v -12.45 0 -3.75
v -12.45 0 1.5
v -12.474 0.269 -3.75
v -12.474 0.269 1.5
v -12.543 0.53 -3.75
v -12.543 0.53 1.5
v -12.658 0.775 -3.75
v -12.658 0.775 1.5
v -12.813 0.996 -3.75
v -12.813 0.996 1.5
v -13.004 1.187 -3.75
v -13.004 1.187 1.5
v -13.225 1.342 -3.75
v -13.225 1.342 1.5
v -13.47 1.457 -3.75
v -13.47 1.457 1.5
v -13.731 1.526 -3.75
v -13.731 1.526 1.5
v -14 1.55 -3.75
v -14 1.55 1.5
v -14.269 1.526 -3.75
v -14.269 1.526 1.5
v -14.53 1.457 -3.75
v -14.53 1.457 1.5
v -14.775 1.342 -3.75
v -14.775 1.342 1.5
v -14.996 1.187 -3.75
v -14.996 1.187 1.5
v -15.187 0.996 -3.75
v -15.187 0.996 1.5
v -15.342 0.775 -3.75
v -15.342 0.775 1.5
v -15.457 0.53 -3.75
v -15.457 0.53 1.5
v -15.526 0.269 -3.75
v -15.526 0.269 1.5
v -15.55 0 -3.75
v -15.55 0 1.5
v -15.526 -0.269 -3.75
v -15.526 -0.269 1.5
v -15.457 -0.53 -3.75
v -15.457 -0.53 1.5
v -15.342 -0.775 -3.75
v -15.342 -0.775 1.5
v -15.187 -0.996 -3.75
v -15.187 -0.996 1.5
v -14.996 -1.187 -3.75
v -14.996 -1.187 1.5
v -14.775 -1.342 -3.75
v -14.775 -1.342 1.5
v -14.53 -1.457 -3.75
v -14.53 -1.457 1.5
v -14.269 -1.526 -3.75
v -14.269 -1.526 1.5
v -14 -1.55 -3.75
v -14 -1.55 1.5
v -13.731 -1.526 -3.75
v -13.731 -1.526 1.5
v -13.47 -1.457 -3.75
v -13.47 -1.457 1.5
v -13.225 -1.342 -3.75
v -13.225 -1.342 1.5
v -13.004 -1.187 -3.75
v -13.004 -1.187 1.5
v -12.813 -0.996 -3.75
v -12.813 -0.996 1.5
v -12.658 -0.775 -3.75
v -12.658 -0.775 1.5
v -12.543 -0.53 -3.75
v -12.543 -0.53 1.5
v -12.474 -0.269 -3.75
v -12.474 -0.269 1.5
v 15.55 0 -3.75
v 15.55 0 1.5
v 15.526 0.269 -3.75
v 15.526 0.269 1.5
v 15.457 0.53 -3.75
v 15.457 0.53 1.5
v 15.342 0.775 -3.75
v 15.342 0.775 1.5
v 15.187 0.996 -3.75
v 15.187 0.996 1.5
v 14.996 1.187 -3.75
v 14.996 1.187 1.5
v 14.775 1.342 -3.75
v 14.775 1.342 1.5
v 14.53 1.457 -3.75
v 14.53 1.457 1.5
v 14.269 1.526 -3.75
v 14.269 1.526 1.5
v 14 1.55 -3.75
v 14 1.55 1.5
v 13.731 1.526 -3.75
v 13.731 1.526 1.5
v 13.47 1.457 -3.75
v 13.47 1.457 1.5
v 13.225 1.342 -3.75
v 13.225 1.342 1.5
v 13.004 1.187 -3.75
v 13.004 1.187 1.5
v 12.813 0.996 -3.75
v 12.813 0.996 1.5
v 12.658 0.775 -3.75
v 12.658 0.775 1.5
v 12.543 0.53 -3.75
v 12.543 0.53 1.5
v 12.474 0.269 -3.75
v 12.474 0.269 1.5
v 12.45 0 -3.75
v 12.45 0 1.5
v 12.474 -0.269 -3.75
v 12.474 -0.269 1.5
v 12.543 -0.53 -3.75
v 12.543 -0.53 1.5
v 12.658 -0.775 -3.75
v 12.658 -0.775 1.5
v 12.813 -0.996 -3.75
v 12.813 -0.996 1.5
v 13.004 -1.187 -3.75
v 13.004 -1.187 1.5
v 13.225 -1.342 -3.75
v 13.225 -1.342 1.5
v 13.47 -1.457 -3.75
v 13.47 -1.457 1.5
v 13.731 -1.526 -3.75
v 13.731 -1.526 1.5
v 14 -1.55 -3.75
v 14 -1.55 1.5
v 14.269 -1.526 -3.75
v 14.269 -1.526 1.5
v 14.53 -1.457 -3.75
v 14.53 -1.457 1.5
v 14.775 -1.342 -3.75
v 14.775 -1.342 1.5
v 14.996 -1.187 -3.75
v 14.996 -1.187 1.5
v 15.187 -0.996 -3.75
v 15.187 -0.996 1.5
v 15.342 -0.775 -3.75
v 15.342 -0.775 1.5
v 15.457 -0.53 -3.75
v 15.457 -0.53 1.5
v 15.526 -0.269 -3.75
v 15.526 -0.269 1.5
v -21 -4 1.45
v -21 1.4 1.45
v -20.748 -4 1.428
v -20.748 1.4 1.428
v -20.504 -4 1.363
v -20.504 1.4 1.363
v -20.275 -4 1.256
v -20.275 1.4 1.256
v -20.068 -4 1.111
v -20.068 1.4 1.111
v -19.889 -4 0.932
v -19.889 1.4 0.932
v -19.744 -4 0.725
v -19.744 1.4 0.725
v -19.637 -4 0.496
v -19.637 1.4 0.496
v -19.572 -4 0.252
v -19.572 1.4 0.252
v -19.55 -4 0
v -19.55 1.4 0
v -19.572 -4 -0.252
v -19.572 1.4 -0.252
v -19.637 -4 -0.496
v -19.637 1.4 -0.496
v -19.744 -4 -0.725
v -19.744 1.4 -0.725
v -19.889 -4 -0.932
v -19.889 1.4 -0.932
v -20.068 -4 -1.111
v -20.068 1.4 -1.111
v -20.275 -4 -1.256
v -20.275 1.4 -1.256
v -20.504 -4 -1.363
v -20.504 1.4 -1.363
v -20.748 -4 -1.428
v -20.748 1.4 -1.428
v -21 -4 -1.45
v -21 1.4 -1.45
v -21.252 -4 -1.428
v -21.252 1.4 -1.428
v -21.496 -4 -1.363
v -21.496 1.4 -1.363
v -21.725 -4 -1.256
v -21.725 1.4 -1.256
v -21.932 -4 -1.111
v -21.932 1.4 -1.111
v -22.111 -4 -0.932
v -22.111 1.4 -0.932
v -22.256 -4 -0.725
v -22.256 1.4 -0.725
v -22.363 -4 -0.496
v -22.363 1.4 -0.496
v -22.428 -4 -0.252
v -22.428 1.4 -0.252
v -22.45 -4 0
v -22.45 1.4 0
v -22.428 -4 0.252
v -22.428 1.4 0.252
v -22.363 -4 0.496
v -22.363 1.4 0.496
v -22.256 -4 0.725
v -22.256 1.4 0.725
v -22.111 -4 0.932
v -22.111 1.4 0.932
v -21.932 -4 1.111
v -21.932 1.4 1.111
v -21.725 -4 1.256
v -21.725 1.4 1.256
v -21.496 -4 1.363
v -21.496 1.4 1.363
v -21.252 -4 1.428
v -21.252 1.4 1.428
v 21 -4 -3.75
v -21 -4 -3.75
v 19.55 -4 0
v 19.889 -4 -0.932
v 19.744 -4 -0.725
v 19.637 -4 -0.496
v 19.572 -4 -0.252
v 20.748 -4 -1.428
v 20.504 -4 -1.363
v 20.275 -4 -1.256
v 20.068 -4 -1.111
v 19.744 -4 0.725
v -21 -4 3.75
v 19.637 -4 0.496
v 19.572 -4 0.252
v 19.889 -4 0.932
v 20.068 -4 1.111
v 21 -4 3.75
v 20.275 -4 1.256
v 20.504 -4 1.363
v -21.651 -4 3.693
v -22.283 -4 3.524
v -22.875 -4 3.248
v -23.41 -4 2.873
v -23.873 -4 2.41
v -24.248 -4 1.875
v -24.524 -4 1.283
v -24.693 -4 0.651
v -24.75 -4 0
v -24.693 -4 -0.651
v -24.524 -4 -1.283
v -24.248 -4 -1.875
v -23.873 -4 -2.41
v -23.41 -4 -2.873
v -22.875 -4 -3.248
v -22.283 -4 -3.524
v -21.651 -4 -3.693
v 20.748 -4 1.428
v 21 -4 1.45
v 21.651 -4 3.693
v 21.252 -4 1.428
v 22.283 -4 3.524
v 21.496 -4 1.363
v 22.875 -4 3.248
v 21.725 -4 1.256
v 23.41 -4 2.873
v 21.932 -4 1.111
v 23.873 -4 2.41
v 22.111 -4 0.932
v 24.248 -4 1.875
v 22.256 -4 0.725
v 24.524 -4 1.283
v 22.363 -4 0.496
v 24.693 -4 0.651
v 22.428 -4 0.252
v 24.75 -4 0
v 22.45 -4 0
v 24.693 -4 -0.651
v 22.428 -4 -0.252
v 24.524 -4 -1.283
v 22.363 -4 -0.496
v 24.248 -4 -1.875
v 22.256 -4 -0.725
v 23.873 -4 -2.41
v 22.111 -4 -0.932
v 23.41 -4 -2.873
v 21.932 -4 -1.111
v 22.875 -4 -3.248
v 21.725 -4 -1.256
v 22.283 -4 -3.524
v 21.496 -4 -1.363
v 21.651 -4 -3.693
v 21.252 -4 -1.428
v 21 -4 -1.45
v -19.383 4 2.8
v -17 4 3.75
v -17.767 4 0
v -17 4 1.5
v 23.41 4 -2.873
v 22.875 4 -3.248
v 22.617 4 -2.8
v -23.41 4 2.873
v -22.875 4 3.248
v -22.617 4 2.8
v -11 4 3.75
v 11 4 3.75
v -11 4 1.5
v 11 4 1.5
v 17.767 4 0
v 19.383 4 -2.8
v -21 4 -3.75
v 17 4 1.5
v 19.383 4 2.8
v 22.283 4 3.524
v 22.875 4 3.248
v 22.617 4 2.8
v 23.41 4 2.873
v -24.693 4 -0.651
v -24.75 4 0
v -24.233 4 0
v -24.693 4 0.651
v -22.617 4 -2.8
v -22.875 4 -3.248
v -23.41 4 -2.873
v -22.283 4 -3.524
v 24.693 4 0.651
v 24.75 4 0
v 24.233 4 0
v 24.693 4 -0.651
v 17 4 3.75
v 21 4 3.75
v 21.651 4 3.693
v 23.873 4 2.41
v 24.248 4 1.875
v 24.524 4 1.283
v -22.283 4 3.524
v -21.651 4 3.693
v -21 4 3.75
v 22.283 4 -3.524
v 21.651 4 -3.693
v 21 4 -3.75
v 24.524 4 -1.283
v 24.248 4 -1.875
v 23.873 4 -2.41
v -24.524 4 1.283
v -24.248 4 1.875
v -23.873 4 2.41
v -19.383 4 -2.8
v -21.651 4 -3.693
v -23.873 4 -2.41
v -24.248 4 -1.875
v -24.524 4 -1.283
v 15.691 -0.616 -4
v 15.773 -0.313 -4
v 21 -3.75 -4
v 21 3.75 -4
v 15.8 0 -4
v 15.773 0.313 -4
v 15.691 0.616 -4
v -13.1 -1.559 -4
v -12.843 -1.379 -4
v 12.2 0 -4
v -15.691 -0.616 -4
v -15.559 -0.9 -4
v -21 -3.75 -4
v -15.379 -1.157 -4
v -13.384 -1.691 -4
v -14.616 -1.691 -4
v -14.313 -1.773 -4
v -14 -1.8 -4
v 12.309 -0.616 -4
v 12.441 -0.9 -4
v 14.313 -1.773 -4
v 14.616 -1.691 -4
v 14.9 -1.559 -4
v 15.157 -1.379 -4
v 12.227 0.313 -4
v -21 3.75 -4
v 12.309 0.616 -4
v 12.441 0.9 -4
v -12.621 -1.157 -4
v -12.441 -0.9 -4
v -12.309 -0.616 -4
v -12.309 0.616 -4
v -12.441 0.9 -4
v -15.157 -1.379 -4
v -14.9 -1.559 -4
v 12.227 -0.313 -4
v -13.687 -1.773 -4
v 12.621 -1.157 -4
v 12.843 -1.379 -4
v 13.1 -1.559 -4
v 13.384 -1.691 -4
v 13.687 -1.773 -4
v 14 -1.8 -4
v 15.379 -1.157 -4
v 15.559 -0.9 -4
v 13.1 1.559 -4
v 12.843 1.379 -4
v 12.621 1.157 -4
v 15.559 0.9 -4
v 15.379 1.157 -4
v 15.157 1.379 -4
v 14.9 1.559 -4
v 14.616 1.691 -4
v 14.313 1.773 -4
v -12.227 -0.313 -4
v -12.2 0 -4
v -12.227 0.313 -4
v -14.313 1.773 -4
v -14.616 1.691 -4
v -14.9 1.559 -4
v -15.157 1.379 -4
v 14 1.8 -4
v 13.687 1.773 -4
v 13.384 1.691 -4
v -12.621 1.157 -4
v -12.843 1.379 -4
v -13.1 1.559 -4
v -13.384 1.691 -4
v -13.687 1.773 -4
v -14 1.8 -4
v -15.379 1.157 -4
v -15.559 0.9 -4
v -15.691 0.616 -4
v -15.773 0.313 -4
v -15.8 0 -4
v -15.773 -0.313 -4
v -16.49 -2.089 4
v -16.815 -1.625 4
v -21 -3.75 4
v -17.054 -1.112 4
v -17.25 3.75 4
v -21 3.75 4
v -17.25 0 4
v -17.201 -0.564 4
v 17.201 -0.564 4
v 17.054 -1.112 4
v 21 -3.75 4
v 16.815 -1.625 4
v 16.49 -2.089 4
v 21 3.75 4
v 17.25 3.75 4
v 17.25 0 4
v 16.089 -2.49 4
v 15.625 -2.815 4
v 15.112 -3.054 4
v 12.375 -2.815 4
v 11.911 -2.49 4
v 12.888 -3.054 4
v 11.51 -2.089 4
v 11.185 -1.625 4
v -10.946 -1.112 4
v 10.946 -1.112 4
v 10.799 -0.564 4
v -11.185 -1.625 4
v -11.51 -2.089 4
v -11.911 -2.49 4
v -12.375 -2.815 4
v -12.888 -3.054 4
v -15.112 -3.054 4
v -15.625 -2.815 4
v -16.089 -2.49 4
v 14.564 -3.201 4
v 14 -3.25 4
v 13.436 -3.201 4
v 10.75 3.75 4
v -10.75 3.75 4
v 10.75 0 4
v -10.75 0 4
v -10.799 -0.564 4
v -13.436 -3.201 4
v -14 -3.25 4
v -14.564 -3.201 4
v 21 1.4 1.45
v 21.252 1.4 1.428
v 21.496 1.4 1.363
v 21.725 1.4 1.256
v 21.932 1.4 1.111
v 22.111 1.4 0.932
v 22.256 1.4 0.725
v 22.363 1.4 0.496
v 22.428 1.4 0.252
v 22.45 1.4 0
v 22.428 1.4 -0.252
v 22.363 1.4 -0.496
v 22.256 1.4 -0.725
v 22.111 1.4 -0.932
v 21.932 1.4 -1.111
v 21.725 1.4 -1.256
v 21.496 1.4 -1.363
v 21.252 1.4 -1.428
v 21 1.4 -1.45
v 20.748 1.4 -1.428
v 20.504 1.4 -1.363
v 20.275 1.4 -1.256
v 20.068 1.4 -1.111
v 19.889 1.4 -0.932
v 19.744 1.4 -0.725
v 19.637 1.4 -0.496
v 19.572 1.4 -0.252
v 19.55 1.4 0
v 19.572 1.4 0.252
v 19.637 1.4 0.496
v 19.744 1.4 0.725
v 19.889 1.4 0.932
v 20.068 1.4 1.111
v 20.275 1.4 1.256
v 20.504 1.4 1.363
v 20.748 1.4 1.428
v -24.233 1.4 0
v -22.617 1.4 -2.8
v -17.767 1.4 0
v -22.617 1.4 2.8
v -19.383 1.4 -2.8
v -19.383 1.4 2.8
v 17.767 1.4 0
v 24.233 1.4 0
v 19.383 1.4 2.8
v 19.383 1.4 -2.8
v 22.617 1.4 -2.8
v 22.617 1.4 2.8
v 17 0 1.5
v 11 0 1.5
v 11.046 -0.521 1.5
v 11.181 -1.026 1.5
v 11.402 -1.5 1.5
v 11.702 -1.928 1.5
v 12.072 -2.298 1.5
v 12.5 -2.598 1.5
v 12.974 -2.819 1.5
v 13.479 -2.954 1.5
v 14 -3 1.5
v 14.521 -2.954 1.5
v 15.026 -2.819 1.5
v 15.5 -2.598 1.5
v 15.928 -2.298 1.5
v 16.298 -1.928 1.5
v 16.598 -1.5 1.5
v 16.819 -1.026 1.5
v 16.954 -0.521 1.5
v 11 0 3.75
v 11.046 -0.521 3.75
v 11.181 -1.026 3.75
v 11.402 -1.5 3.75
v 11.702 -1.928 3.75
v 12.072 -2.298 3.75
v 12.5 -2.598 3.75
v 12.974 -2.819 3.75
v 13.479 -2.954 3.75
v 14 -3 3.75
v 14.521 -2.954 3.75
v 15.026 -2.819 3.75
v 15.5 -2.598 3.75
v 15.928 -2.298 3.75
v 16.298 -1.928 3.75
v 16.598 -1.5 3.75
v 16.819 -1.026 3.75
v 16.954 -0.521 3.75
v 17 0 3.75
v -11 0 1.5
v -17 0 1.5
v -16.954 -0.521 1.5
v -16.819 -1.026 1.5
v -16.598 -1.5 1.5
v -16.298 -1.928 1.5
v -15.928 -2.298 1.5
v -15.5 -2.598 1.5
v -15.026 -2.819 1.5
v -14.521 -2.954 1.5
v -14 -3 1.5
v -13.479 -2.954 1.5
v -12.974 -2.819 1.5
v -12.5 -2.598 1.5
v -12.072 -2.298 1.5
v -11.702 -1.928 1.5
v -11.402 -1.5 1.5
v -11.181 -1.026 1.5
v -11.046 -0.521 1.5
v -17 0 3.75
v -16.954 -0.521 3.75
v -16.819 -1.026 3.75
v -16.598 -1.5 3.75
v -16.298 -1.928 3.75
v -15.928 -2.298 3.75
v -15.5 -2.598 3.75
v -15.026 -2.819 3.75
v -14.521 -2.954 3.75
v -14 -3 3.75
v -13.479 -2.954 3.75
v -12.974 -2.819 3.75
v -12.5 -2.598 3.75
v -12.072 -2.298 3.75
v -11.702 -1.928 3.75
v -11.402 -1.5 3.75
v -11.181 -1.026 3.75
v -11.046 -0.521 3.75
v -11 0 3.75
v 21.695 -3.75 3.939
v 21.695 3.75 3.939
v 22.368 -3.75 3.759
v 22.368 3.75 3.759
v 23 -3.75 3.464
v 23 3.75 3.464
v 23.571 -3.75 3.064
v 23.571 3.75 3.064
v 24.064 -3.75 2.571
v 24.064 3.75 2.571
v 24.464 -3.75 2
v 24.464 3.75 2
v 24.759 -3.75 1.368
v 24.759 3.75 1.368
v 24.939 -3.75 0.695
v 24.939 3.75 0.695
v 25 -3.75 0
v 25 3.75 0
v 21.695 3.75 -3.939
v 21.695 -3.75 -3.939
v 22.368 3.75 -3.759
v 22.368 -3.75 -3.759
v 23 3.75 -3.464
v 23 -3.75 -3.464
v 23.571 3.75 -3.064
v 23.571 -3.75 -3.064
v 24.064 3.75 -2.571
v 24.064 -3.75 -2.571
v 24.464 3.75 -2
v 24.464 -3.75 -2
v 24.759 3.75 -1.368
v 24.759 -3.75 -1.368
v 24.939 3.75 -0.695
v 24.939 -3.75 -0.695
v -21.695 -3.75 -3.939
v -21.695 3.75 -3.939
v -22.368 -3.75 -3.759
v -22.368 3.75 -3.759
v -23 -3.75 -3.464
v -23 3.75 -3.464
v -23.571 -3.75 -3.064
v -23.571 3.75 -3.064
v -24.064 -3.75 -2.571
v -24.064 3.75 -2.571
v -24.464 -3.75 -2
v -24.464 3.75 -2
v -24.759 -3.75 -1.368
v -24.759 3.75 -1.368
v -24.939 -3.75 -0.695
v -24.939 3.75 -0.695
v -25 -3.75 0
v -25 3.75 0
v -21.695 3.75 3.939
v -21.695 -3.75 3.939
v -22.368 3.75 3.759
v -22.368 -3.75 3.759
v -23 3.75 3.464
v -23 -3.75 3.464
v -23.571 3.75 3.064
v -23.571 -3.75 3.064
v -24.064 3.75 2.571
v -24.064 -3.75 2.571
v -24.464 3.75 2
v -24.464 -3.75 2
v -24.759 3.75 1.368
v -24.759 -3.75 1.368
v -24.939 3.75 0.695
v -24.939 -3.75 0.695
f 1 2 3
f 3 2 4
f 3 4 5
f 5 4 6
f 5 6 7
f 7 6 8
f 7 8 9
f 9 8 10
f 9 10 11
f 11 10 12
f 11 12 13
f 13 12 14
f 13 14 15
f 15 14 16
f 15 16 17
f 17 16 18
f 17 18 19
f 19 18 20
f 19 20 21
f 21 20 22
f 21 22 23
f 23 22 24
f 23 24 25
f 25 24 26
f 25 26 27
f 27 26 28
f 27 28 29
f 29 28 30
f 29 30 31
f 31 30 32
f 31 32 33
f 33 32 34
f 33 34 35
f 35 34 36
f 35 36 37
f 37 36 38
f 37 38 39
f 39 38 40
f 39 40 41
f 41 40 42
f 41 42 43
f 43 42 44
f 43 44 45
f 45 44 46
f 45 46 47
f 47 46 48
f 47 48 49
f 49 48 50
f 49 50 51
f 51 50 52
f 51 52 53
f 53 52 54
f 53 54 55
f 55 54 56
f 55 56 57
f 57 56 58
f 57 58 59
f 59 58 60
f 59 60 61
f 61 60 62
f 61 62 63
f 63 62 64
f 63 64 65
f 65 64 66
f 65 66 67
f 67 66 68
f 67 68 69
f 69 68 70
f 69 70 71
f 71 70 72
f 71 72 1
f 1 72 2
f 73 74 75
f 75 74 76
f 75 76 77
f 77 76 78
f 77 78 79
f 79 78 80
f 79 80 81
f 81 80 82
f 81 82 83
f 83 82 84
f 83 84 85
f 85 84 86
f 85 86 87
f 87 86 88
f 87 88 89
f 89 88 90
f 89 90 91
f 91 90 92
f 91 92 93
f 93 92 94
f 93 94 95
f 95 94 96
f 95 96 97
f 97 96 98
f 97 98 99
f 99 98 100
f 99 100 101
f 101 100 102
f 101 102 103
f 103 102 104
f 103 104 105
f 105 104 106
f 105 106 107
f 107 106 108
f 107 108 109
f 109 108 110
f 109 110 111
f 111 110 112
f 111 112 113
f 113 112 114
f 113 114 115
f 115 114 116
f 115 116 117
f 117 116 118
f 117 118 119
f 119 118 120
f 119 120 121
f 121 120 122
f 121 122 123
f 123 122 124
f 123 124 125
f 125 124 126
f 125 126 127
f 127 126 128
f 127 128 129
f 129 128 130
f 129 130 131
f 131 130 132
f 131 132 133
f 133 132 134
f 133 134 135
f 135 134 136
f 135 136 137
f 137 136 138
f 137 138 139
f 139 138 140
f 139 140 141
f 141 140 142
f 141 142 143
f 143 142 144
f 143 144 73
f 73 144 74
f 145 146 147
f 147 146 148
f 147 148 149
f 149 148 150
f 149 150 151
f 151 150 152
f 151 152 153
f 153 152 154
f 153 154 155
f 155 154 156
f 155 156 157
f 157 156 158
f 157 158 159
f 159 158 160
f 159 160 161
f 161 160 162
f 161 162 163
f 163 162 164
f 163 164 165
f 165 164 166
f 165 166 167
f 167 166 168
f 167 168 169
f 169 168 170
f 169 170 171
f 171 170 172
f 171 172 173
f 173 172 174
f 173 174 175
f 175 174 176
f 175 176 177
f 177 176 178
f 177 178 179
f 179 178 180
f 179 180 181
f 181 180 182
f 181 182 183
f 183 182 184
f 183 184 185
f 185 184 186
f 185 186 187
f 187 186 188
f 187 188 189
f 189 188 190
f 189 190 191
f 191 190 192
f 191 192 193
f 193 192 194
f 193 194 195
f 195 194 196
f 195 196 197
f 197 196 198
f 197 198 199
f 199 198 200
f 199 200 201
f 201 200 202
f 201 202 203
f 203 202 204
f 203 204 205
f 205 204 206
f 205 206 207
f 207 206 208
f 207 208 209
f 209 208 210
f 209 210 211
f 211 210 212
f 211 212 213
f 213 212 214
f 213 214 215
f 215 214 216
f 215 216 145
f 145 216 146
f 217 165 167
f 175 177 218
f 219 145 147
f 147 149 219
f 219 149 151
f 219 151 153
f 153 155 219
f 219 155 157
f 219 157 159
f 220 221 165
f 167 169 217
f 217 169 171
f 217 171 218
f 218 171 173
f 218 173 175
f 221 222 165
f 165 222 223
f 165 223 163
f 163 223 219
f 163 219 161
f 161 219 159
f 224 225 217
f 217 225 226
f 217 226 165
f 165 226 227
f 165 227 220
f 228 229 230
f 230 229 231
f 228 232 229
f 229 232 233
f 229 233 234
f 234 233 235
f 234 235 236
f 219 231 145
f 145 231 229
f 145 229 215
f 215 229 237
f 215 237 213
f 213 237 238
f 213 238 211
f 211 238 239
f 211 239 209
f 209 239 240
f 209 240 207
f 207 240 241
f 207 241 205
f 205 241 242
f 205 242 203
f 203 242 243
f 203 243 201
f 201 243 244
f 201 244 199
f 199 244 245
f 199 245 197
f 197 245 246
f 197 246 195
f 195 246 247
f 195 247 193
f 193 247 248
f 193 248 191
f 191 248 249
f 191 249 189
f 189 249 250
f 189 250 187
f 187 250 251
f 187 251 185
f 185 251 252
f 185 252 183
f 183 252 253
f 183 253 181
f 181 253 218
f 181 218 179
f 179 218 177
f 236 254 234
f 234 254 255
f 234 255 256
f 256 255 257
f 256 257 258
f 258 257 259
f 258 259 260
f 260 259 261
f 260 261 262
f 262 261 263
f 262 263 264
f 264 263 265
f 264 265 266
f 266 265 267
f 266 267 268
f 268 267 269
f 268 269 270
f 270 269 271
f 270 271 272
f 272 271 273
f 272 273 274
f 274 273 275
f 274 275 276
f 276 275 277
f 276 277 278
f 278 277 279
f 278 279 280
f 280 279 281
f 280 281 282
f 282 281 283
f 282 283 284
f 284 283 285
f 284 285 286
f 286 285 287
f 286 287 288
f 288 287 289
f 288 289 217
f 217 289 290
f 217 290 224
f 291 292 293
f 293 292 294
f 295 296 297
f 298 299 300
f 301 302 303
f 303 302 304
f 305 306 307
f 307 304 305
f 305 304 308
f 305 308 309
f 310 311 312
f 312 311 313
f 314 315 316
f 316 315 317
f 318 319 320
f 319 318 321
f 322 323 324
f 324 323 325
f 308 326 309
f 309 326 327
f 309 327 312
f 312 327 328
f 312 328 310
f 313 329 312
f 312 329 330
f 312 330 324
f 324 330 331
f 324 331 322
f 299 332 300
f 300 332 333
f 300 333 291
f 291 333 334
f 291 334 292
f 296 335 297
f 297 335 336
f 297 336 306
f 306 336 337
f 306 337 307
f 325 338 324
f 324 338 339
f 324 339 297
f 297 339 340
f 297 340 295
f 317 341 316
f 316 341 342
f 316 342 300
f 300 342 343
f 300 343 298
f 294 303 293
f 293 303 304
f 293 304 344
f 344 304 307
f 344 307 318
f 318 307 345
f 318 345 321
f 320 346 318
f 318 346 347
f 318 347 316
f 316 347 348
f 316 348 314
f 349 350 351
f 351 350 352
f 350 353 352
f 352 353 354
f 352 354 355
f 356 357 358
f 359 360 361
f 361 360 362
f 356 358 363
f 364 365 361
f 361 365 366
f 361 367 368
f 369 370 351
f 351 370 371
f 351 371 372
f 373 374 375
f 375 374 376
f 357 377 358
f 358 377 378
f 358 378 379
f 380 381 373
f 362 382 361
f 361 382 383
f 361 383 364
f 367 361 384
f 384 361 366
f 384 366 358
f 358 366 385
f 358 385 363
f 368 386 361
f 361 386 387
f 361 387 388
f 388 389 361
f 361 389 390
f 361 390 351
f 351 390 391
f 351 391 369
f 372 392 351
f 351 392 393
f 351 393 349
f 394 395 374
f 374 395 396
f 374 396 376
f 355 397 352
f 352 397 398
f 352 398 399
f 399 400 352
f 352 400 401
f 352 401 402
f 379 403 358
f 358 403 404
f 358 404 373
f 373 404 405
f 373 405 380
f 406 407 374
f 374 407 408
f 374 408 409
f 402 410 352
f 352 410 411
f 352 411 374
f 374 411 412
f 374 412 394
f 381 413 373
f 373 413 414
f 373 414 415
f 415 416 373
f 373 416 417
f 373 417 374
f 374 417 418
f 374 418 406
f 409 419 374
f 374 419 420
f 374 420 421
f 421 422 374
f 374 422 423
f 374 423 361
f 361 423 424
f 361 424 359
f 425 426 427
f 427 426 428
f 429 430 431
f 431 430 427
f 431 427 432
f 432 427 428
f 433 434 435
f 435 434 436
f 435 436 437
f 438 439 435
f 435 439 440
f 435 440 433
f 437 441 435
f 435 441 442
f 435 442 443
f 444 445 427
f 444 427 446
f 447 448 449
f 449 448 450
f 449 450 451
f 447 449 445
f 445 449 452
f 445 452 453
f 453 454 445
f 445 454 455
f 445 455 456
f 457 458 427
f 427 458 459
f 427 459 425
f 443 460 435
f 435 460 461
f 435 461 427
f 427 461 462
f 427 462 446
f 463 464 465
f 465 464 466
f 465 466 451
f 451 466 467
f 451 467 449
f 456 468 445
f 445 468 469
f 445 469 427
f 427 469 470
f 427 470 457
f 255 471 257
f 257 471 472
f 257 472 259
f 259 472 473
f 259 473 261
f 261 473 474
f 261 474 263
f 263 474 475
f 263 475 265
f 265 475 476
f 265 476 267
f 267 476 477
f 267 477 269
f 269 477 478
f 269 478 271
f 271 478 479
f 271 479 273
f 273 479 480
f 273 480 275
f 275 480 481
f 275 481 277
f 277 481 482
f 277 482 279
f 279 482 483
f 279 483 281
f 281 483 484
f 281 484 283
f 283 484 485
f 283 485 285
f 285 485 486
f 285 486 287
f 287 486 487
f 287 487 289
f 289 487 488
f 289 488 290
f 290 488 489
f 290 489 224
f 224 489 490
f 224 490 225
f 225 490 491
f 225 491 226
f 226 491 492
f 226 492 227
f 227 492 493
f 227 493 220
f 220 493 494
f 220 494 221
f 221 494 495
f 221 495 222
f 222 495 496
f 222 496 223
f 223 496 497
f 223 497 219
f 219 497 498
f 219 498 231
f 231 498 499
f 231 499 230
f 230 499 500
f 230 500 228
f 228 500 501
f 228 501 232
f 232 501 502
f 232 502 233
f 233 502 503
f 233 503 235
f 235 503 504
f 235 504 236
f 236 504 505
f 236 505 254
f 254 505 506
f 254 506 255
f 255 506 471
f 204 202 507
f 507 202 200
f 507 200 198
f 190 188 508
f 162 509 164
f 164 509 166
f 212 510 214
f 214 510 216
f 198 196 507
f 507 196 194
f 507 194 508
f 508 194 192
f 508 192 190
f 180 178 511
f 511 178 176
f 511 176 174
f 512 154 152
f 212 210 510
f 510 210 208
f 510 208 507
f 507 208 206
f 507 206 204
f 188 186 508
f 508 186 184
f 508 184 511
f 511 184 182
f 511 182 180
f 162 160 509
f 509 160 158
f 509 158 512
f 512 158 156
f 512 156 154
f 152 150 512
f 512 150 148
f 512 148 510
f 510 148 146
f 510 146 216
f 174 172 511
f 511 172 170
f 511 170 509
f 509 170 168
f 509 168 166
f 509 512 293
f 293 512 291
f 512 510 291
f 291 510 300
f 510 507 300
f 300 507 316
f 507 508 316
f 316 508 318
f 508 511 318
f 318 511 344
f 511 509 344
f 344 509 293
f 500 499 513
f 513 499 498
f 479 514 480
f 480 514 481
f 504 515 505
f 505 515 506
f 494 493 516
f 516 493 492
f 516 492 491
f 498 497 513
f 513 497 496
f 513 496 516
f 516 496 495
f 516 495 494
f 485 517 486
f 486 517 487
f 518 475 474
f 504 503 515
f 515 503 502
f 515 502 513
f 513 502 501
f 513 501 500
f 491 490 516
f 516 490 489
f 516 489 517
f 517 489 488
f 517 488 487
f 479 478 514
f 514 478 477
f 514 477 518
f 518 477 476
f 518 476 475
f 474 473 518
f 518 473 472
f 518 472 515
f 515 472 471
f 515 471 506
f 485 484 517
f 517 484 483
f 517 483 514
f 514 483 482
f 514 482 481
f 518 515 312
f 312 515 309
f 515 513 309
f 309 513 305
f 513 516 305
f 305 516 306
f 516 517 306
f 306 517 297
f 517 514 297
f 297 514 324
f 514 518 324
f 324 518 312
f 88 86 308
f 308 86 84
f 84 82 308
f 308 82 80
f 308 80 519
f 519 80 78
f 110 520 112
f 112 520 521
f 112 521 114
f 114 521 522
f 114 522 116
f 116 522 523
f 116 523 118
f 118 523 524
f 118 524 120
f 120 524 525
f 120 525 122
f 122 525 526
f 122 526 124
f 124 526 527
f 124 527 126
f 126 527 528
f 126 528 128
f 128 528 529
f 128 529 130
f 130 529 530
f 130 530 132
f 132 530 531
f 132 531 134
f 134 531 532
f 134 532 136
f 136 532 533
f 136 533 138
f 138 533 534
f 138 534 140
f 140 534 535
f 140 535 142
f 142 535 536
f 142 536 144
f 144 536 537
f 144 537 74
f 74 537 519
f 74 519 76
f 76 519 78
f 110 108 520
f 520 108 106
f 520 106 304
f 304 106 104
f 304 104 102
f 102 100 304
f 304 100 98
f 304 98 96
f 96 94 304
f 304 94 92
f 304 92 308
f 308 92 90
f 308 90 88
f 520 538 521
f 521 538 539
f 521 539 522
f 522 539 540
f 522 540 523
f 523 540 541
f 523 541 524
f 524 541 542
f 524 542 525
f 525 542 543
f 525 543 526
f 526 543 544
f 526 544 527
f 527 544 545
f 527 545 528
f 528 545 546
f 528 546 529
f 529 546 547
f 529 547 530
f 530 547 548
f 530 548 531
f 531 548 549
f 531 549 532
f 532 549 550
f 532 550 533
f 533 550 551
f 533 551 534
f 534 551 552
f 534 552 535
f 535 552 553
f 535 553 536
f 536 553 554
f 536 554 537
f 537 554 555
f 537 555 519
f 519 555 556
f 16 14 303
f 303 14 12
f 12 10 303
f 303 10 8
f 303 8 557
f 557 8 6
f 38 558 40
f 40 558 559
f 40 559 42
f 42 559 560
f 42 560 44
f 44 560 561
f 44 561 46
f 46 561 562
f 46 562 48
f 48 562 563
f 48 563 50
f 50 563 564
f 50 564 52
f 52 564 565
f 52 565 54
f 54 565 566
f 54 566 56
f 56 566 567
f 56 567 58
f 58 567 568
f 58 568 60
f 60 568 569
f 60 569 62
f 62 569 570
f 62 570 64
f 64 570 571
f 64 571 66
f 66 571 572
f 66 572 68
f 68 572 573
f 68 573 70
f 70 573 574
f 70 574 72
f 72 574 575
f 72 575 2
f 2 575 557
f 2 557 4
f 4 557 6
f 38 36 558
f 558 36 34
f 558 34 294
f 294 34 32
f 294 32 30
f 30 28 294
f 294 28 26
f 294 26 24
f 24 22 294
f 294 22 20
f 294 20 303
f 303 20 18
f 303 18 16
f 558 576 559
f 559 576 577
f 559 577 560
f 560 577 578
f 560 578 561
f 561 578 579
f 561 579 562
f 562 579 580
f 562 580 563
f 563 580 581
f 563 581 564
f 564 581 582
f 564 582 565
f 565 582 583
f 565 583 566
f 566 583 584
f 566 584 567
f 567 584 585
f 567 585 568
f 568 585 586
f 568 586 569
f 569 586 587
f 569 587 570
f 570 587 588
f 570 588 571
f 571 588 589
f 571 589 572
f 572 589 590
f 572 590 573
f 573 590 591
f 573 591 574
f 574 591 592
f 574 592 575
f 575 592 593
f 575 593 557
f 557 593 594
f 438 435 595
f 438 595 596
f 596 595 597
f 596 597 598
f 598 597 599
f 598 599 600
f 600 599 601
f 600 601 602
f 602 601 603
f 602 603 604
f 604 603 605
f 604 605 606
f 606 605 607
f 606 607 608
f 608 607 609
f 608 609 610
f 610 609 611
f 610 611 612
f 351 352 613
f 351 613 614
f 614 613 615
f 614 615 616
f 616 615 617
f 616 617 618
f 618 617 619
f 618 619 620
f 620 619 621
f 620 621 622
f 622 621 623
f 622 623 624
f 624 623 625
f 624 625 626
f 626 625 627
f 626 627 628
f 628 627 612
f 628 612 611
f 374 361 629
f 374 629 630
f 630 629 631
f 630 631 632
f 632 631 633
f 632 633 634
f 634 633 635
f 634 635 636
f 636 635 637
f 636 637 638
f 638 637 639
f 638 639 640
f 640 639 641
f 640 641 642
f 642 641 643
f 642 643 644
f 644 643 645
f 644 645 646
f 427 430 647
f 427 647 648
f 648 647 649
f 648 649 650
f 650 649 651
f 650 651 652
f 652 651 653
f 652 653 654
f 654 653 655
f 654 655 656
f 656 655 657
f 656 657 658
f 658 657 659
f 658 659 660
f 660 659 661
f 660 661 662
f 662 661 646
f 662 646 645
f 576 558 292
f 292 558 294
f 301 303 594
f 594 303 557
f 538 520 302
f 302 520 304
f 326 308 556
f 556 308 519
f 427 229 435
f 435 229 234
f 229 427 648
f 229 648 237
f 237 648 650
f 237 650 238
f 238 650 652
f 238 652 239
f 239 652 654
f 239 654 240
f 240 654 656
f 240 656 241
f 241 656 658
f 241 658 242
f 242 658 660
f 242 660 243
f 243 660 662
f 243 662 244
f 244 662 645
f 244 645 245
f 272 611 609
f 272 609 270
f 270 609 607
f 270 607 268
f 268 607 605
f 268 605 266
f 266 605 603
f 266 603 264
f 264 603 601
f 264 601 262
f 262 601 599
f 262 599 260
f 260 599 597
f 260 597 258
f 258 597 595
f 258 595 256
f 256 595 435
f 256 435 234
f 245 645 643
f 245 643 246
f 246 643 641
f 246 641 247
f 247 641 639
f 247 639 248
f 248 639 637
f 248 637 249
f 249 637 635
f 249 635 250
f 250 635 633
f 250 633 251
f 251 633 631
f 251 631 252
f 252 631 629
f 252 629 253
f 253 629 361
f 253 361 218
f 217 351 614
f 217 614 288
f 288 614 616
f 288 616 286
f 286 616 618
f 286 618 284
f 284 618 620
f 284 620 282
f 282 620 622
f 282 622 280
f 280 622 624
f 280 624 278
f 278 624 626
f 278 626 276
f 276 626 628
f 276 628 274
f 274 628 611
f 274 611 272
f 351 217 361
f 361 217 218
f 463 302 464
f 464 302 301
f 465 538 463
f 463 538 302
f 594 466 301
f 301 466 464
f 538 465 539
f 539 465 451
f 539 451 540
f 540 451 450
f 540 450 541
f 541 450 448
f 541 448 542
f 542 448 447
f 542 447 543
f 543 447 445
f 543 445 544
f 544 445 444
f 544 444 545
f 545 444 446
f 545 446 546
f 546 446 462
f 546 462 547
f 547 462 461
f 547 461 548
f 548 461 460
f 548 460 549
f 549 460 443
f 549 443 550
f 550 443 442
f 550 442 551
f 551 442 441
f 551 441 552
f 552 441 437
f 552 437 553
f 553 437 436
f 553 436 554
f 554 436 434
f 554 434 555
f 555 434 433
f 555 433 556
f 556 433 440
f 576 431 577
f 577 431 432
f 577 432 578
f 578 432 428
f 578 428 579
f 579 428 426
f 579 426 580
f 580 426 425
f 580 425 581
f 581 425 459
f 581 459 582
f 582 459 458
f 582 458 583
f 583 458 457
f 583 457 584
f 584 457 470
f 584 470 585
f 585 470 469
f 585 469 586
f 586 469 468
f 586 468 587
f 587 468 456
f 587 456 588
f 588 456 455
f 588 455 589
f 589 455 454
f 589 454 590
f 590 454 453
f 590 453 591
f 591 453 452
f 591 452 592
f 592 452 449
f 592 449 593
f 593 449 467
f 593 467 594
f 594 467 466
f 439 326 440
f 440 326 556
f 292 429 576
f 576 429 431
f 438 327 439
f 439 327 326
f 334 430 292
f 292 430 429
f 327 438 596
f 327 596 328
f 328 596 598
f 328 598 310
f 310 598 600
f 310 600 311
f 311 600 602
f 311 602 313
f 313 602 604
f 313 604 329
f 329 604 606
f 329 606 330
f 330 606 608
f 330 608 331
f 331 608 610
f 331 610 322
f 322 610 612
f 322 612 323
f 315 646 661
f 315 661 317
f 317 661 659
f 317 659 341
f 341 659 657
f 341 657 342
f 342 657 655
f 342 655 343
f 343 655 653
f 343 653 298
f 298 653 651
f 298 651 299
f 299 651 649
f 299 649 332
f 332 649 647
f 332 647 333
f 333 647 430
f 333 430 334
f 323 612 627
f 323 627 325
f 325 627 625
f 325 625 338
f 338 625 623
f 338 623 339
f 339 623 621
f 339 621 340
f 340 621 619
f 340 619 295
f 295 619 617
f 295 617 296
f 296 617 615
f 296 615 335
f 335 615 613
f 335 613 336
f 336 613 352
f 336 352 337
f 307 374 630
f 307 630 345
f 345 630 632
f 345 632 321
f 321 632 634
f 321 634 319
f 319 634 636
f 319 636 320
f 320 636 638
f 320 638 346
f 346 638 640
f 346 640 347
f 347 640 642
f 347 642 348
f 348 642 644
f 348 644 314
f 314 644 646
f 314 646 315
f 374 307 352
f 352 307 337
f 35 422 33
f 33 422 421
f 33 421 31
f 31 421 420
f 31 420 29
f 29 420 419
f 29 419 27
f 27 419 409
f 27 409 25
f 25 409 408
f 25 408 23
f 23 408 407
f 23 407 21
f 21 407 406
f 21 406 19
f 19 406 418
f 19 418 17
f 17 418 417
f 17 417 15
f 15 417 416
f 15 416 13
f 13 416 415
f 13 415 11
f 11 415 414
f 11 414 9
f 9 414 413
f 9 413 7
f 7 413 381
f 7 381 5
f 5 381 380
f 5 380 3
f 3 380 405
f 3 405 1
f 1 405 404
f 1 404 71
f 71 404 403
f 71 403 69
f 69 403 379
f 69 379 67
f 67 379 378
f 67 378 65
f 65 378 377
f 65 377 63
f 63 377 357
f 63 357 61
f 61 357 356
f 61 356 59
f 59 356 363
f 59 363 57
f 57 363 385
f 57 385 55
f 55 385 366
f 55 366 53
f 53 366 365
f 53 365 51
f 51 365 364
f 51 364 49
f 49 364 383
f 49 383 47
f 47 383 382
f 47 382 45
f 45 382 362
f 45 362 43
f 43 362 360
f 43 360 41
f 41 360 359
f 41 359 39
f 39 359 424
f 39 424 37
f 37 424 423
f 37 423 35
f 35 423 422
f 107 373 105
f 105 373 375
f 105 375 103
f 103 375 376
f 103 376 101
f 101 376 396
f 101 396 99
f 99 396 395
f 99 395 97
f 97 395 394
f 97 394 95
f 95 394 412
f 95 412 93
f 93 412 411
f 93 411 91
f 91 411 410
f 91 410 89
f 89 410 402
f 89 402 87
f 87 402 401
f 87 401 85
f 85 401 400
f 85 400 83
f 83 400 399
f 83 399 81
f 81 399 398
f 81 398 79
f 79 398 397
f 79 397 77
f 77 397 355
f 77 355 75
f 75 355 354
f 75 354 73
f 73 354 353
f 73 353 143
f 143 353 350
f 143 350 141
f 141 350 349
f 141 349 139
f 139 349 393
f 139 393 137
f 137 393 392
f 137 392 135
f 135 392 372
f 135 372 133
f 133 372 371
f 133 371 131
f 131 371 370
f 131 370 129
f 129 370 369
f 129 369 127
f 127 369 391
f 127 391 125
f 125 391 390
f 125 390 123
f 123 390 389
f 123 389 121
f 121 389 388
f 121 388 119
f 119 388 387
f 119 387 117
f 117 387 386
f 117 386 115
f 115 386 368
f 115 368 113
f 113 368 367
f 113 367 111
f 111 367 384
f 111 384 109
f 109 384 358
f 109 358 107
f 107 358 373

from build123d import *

# Parameters (mm, degrees)
DODANIE_WYCI_GNI_CIE1_DEPTH      = 4
DODANIE_WYCI_GNI_CIE1_DEPTH_BACK = 4
SZKIC1_W                         = 50
SZKIC1_H                         = 8
SZKIC1_R                         = 1.55
SZKIC2_R                         = 1.45
WYTNIJ_WYCI_GNI_CIE1_DEPTH       = 27.551836095
WYTNIJ_WYCI_GNI_CIE2_DEPTH       = 2.6
SZKIC4_R                         = 3
WYTNIJ_WYCI_GNI_CIE3_DEPTH       = 2.5
ZAOKR_GLENIE1_R                  = 4
SZKIC5_W                         = 6
SZKIC5_H                         = 4
WYTNIJ_WYCI_GNI_CIE4_DEPTH       = 2.5
SFAZOWANIE1_SIZE                 = 0.25


with BuildPart() as part:
    # Szkic1 → Dodanie-wyciągnięcie1 (new, two sides: drawn at the far end of the back side and taken through both)
    with BuildSketch(Plane.XY.offset(-DODANIE_WYCI_GNI_CIE1_DEPTH_BACK)):
        Rectangle(SZKIC1_W, SZKIC1_H)
        with Locations((-14, 0)):
            Circle(SZKIC1_R, mode=Mode.SUBTRACT)
        with Locations((14, 0)):
            Circle(SZKIC1_R, mode=Mode.SUBTRACT)
    extrude(amount=DODANIE_WYCI_GNI_CIE1_DEPTH + DODANIE_WYCI_GNI_CIE1_DEPTH_BACK)

    # Szkic2 → Wytnij-wyciągnięcie1 (cut, through all)
    with BuildSketch(Plane(origin=(0, 4, 0), x_dir=(1, 0, 0), z_dir=(0, 1, 0))):
        with Locations(Location((-21, 0, 0), (0, 0, 270))):
            Circle(SZKIC2_R)
        with Locations(Location((21, 0, 0), (0, 0, 270))):
            Circle(SZKIC2_R)
    extrude(amount=-WYTNIJ_WYCI_GNI_CIE1_DEPTH, mode=Mode.SUBTRACT)

    # Szkic3 → Wytnij-wyciągnięcie2 (cut)
    with BuildSketch(Plane(origin=(0, 4, 0), x_dir=(1, 0, 0), z_dir=(0, 1, 0))):
        Polygon((-17.766838493, 0), (-19.383419246, 2.8), (-22.616580754, 2.8), (-24.233161507, 0), (-22.616580754, -2.8), (-19.383419246, -2.8), align=None)
        Polygon((19.383419246, -2.8), (17.766838493, 0), (19.383419246, 2.8), (22.616580754, 2.8), (24.233161507, 0), (22.616580754, -2.8), align=None)
    extrude(amount=-WYTNIJ_WYCI_GNI_CIE2_DEPTH, mode=Mode.SUBTRACT)

    # Szkic4 → Wytnij-wyciągnięcie3 (cut)
    with BuildSketch(Plane.XY.offset(4)):
        with Locations((-14, 0)):
            Circle(SZKIC4_R)
        with Locations((14, 0)):
            Circle(SZKIC4_R)
    extrude(amount=-WYTNIJ_WYCI_GNI_CIE3_DEPTH, mode=Mode.SUBTRACT)

    # Zaokrąglenie1
    zaokr_glenie1_edges = [part.edges().sort_by_distance(p)[0] for p in [
        (25, 0, -4),
        (25, 0, 4),
        (-25, 0, 4),
        (-25, 0, -4),
    ]]
    fillet(zaokr_glenie1_edges, radius=ZAOKR_GLENIE1_R - 0.0001)  # a hair under: the kernel refuses the full size

    # Szkic5 → Wytnij-wyciągnięcie4 (cut)
    with BuildSketch(Plane.XY.offset(4)):
        with Locations((-14, 2)):
            Rectangle(SZKIC5_W, SZKIC5_H)
        with Locations((14, 2)):
            Rectangle(SZKIC5_W, SZKIC5_H)
    extrude(amount=-WYTNIJ_WYCI_GNI_CIE4_DEPTH, mode=Mode.SUBTRACT)

    # Sfazowanie1
    sfazowanie1_edges = [part.edges().sort_by_distance(p)[0] for p in [
        (19.00005, 4, 4),
        (0, 4, -4),
        (-23.828456414, 4, -2.828456414),
        (-23.828456414, 4, 2.828456414),
        (23.828456414, 4, 2.828456414),
        (23.828456414, 4, -2.828456414),
        (0, -4, -4),
        (0, -4, 4),
        (-23.828456414, -4, -2.828456414),
        (-23.828456414, -4, 2.828456414),
        (23.828456414, -4, 2.828456414),
        (23.828456414, -4, -2.828456414),
        (-14, -3, 4),
        (-15.55, 0, -4),
        (14, -3, 4),
        (0, 4, 4),
        (-19.00005, 4, 4),
        (-11, 2, 4),
        (-17, 2, 4),
        (17, 2, 4),
        (11, 2, 4),
        (12.45, 0, -4),
    ]]
    chamfer(sfazowanie1_edges, length=SFAZOWANIE1_SIZE)


solid = part.part
